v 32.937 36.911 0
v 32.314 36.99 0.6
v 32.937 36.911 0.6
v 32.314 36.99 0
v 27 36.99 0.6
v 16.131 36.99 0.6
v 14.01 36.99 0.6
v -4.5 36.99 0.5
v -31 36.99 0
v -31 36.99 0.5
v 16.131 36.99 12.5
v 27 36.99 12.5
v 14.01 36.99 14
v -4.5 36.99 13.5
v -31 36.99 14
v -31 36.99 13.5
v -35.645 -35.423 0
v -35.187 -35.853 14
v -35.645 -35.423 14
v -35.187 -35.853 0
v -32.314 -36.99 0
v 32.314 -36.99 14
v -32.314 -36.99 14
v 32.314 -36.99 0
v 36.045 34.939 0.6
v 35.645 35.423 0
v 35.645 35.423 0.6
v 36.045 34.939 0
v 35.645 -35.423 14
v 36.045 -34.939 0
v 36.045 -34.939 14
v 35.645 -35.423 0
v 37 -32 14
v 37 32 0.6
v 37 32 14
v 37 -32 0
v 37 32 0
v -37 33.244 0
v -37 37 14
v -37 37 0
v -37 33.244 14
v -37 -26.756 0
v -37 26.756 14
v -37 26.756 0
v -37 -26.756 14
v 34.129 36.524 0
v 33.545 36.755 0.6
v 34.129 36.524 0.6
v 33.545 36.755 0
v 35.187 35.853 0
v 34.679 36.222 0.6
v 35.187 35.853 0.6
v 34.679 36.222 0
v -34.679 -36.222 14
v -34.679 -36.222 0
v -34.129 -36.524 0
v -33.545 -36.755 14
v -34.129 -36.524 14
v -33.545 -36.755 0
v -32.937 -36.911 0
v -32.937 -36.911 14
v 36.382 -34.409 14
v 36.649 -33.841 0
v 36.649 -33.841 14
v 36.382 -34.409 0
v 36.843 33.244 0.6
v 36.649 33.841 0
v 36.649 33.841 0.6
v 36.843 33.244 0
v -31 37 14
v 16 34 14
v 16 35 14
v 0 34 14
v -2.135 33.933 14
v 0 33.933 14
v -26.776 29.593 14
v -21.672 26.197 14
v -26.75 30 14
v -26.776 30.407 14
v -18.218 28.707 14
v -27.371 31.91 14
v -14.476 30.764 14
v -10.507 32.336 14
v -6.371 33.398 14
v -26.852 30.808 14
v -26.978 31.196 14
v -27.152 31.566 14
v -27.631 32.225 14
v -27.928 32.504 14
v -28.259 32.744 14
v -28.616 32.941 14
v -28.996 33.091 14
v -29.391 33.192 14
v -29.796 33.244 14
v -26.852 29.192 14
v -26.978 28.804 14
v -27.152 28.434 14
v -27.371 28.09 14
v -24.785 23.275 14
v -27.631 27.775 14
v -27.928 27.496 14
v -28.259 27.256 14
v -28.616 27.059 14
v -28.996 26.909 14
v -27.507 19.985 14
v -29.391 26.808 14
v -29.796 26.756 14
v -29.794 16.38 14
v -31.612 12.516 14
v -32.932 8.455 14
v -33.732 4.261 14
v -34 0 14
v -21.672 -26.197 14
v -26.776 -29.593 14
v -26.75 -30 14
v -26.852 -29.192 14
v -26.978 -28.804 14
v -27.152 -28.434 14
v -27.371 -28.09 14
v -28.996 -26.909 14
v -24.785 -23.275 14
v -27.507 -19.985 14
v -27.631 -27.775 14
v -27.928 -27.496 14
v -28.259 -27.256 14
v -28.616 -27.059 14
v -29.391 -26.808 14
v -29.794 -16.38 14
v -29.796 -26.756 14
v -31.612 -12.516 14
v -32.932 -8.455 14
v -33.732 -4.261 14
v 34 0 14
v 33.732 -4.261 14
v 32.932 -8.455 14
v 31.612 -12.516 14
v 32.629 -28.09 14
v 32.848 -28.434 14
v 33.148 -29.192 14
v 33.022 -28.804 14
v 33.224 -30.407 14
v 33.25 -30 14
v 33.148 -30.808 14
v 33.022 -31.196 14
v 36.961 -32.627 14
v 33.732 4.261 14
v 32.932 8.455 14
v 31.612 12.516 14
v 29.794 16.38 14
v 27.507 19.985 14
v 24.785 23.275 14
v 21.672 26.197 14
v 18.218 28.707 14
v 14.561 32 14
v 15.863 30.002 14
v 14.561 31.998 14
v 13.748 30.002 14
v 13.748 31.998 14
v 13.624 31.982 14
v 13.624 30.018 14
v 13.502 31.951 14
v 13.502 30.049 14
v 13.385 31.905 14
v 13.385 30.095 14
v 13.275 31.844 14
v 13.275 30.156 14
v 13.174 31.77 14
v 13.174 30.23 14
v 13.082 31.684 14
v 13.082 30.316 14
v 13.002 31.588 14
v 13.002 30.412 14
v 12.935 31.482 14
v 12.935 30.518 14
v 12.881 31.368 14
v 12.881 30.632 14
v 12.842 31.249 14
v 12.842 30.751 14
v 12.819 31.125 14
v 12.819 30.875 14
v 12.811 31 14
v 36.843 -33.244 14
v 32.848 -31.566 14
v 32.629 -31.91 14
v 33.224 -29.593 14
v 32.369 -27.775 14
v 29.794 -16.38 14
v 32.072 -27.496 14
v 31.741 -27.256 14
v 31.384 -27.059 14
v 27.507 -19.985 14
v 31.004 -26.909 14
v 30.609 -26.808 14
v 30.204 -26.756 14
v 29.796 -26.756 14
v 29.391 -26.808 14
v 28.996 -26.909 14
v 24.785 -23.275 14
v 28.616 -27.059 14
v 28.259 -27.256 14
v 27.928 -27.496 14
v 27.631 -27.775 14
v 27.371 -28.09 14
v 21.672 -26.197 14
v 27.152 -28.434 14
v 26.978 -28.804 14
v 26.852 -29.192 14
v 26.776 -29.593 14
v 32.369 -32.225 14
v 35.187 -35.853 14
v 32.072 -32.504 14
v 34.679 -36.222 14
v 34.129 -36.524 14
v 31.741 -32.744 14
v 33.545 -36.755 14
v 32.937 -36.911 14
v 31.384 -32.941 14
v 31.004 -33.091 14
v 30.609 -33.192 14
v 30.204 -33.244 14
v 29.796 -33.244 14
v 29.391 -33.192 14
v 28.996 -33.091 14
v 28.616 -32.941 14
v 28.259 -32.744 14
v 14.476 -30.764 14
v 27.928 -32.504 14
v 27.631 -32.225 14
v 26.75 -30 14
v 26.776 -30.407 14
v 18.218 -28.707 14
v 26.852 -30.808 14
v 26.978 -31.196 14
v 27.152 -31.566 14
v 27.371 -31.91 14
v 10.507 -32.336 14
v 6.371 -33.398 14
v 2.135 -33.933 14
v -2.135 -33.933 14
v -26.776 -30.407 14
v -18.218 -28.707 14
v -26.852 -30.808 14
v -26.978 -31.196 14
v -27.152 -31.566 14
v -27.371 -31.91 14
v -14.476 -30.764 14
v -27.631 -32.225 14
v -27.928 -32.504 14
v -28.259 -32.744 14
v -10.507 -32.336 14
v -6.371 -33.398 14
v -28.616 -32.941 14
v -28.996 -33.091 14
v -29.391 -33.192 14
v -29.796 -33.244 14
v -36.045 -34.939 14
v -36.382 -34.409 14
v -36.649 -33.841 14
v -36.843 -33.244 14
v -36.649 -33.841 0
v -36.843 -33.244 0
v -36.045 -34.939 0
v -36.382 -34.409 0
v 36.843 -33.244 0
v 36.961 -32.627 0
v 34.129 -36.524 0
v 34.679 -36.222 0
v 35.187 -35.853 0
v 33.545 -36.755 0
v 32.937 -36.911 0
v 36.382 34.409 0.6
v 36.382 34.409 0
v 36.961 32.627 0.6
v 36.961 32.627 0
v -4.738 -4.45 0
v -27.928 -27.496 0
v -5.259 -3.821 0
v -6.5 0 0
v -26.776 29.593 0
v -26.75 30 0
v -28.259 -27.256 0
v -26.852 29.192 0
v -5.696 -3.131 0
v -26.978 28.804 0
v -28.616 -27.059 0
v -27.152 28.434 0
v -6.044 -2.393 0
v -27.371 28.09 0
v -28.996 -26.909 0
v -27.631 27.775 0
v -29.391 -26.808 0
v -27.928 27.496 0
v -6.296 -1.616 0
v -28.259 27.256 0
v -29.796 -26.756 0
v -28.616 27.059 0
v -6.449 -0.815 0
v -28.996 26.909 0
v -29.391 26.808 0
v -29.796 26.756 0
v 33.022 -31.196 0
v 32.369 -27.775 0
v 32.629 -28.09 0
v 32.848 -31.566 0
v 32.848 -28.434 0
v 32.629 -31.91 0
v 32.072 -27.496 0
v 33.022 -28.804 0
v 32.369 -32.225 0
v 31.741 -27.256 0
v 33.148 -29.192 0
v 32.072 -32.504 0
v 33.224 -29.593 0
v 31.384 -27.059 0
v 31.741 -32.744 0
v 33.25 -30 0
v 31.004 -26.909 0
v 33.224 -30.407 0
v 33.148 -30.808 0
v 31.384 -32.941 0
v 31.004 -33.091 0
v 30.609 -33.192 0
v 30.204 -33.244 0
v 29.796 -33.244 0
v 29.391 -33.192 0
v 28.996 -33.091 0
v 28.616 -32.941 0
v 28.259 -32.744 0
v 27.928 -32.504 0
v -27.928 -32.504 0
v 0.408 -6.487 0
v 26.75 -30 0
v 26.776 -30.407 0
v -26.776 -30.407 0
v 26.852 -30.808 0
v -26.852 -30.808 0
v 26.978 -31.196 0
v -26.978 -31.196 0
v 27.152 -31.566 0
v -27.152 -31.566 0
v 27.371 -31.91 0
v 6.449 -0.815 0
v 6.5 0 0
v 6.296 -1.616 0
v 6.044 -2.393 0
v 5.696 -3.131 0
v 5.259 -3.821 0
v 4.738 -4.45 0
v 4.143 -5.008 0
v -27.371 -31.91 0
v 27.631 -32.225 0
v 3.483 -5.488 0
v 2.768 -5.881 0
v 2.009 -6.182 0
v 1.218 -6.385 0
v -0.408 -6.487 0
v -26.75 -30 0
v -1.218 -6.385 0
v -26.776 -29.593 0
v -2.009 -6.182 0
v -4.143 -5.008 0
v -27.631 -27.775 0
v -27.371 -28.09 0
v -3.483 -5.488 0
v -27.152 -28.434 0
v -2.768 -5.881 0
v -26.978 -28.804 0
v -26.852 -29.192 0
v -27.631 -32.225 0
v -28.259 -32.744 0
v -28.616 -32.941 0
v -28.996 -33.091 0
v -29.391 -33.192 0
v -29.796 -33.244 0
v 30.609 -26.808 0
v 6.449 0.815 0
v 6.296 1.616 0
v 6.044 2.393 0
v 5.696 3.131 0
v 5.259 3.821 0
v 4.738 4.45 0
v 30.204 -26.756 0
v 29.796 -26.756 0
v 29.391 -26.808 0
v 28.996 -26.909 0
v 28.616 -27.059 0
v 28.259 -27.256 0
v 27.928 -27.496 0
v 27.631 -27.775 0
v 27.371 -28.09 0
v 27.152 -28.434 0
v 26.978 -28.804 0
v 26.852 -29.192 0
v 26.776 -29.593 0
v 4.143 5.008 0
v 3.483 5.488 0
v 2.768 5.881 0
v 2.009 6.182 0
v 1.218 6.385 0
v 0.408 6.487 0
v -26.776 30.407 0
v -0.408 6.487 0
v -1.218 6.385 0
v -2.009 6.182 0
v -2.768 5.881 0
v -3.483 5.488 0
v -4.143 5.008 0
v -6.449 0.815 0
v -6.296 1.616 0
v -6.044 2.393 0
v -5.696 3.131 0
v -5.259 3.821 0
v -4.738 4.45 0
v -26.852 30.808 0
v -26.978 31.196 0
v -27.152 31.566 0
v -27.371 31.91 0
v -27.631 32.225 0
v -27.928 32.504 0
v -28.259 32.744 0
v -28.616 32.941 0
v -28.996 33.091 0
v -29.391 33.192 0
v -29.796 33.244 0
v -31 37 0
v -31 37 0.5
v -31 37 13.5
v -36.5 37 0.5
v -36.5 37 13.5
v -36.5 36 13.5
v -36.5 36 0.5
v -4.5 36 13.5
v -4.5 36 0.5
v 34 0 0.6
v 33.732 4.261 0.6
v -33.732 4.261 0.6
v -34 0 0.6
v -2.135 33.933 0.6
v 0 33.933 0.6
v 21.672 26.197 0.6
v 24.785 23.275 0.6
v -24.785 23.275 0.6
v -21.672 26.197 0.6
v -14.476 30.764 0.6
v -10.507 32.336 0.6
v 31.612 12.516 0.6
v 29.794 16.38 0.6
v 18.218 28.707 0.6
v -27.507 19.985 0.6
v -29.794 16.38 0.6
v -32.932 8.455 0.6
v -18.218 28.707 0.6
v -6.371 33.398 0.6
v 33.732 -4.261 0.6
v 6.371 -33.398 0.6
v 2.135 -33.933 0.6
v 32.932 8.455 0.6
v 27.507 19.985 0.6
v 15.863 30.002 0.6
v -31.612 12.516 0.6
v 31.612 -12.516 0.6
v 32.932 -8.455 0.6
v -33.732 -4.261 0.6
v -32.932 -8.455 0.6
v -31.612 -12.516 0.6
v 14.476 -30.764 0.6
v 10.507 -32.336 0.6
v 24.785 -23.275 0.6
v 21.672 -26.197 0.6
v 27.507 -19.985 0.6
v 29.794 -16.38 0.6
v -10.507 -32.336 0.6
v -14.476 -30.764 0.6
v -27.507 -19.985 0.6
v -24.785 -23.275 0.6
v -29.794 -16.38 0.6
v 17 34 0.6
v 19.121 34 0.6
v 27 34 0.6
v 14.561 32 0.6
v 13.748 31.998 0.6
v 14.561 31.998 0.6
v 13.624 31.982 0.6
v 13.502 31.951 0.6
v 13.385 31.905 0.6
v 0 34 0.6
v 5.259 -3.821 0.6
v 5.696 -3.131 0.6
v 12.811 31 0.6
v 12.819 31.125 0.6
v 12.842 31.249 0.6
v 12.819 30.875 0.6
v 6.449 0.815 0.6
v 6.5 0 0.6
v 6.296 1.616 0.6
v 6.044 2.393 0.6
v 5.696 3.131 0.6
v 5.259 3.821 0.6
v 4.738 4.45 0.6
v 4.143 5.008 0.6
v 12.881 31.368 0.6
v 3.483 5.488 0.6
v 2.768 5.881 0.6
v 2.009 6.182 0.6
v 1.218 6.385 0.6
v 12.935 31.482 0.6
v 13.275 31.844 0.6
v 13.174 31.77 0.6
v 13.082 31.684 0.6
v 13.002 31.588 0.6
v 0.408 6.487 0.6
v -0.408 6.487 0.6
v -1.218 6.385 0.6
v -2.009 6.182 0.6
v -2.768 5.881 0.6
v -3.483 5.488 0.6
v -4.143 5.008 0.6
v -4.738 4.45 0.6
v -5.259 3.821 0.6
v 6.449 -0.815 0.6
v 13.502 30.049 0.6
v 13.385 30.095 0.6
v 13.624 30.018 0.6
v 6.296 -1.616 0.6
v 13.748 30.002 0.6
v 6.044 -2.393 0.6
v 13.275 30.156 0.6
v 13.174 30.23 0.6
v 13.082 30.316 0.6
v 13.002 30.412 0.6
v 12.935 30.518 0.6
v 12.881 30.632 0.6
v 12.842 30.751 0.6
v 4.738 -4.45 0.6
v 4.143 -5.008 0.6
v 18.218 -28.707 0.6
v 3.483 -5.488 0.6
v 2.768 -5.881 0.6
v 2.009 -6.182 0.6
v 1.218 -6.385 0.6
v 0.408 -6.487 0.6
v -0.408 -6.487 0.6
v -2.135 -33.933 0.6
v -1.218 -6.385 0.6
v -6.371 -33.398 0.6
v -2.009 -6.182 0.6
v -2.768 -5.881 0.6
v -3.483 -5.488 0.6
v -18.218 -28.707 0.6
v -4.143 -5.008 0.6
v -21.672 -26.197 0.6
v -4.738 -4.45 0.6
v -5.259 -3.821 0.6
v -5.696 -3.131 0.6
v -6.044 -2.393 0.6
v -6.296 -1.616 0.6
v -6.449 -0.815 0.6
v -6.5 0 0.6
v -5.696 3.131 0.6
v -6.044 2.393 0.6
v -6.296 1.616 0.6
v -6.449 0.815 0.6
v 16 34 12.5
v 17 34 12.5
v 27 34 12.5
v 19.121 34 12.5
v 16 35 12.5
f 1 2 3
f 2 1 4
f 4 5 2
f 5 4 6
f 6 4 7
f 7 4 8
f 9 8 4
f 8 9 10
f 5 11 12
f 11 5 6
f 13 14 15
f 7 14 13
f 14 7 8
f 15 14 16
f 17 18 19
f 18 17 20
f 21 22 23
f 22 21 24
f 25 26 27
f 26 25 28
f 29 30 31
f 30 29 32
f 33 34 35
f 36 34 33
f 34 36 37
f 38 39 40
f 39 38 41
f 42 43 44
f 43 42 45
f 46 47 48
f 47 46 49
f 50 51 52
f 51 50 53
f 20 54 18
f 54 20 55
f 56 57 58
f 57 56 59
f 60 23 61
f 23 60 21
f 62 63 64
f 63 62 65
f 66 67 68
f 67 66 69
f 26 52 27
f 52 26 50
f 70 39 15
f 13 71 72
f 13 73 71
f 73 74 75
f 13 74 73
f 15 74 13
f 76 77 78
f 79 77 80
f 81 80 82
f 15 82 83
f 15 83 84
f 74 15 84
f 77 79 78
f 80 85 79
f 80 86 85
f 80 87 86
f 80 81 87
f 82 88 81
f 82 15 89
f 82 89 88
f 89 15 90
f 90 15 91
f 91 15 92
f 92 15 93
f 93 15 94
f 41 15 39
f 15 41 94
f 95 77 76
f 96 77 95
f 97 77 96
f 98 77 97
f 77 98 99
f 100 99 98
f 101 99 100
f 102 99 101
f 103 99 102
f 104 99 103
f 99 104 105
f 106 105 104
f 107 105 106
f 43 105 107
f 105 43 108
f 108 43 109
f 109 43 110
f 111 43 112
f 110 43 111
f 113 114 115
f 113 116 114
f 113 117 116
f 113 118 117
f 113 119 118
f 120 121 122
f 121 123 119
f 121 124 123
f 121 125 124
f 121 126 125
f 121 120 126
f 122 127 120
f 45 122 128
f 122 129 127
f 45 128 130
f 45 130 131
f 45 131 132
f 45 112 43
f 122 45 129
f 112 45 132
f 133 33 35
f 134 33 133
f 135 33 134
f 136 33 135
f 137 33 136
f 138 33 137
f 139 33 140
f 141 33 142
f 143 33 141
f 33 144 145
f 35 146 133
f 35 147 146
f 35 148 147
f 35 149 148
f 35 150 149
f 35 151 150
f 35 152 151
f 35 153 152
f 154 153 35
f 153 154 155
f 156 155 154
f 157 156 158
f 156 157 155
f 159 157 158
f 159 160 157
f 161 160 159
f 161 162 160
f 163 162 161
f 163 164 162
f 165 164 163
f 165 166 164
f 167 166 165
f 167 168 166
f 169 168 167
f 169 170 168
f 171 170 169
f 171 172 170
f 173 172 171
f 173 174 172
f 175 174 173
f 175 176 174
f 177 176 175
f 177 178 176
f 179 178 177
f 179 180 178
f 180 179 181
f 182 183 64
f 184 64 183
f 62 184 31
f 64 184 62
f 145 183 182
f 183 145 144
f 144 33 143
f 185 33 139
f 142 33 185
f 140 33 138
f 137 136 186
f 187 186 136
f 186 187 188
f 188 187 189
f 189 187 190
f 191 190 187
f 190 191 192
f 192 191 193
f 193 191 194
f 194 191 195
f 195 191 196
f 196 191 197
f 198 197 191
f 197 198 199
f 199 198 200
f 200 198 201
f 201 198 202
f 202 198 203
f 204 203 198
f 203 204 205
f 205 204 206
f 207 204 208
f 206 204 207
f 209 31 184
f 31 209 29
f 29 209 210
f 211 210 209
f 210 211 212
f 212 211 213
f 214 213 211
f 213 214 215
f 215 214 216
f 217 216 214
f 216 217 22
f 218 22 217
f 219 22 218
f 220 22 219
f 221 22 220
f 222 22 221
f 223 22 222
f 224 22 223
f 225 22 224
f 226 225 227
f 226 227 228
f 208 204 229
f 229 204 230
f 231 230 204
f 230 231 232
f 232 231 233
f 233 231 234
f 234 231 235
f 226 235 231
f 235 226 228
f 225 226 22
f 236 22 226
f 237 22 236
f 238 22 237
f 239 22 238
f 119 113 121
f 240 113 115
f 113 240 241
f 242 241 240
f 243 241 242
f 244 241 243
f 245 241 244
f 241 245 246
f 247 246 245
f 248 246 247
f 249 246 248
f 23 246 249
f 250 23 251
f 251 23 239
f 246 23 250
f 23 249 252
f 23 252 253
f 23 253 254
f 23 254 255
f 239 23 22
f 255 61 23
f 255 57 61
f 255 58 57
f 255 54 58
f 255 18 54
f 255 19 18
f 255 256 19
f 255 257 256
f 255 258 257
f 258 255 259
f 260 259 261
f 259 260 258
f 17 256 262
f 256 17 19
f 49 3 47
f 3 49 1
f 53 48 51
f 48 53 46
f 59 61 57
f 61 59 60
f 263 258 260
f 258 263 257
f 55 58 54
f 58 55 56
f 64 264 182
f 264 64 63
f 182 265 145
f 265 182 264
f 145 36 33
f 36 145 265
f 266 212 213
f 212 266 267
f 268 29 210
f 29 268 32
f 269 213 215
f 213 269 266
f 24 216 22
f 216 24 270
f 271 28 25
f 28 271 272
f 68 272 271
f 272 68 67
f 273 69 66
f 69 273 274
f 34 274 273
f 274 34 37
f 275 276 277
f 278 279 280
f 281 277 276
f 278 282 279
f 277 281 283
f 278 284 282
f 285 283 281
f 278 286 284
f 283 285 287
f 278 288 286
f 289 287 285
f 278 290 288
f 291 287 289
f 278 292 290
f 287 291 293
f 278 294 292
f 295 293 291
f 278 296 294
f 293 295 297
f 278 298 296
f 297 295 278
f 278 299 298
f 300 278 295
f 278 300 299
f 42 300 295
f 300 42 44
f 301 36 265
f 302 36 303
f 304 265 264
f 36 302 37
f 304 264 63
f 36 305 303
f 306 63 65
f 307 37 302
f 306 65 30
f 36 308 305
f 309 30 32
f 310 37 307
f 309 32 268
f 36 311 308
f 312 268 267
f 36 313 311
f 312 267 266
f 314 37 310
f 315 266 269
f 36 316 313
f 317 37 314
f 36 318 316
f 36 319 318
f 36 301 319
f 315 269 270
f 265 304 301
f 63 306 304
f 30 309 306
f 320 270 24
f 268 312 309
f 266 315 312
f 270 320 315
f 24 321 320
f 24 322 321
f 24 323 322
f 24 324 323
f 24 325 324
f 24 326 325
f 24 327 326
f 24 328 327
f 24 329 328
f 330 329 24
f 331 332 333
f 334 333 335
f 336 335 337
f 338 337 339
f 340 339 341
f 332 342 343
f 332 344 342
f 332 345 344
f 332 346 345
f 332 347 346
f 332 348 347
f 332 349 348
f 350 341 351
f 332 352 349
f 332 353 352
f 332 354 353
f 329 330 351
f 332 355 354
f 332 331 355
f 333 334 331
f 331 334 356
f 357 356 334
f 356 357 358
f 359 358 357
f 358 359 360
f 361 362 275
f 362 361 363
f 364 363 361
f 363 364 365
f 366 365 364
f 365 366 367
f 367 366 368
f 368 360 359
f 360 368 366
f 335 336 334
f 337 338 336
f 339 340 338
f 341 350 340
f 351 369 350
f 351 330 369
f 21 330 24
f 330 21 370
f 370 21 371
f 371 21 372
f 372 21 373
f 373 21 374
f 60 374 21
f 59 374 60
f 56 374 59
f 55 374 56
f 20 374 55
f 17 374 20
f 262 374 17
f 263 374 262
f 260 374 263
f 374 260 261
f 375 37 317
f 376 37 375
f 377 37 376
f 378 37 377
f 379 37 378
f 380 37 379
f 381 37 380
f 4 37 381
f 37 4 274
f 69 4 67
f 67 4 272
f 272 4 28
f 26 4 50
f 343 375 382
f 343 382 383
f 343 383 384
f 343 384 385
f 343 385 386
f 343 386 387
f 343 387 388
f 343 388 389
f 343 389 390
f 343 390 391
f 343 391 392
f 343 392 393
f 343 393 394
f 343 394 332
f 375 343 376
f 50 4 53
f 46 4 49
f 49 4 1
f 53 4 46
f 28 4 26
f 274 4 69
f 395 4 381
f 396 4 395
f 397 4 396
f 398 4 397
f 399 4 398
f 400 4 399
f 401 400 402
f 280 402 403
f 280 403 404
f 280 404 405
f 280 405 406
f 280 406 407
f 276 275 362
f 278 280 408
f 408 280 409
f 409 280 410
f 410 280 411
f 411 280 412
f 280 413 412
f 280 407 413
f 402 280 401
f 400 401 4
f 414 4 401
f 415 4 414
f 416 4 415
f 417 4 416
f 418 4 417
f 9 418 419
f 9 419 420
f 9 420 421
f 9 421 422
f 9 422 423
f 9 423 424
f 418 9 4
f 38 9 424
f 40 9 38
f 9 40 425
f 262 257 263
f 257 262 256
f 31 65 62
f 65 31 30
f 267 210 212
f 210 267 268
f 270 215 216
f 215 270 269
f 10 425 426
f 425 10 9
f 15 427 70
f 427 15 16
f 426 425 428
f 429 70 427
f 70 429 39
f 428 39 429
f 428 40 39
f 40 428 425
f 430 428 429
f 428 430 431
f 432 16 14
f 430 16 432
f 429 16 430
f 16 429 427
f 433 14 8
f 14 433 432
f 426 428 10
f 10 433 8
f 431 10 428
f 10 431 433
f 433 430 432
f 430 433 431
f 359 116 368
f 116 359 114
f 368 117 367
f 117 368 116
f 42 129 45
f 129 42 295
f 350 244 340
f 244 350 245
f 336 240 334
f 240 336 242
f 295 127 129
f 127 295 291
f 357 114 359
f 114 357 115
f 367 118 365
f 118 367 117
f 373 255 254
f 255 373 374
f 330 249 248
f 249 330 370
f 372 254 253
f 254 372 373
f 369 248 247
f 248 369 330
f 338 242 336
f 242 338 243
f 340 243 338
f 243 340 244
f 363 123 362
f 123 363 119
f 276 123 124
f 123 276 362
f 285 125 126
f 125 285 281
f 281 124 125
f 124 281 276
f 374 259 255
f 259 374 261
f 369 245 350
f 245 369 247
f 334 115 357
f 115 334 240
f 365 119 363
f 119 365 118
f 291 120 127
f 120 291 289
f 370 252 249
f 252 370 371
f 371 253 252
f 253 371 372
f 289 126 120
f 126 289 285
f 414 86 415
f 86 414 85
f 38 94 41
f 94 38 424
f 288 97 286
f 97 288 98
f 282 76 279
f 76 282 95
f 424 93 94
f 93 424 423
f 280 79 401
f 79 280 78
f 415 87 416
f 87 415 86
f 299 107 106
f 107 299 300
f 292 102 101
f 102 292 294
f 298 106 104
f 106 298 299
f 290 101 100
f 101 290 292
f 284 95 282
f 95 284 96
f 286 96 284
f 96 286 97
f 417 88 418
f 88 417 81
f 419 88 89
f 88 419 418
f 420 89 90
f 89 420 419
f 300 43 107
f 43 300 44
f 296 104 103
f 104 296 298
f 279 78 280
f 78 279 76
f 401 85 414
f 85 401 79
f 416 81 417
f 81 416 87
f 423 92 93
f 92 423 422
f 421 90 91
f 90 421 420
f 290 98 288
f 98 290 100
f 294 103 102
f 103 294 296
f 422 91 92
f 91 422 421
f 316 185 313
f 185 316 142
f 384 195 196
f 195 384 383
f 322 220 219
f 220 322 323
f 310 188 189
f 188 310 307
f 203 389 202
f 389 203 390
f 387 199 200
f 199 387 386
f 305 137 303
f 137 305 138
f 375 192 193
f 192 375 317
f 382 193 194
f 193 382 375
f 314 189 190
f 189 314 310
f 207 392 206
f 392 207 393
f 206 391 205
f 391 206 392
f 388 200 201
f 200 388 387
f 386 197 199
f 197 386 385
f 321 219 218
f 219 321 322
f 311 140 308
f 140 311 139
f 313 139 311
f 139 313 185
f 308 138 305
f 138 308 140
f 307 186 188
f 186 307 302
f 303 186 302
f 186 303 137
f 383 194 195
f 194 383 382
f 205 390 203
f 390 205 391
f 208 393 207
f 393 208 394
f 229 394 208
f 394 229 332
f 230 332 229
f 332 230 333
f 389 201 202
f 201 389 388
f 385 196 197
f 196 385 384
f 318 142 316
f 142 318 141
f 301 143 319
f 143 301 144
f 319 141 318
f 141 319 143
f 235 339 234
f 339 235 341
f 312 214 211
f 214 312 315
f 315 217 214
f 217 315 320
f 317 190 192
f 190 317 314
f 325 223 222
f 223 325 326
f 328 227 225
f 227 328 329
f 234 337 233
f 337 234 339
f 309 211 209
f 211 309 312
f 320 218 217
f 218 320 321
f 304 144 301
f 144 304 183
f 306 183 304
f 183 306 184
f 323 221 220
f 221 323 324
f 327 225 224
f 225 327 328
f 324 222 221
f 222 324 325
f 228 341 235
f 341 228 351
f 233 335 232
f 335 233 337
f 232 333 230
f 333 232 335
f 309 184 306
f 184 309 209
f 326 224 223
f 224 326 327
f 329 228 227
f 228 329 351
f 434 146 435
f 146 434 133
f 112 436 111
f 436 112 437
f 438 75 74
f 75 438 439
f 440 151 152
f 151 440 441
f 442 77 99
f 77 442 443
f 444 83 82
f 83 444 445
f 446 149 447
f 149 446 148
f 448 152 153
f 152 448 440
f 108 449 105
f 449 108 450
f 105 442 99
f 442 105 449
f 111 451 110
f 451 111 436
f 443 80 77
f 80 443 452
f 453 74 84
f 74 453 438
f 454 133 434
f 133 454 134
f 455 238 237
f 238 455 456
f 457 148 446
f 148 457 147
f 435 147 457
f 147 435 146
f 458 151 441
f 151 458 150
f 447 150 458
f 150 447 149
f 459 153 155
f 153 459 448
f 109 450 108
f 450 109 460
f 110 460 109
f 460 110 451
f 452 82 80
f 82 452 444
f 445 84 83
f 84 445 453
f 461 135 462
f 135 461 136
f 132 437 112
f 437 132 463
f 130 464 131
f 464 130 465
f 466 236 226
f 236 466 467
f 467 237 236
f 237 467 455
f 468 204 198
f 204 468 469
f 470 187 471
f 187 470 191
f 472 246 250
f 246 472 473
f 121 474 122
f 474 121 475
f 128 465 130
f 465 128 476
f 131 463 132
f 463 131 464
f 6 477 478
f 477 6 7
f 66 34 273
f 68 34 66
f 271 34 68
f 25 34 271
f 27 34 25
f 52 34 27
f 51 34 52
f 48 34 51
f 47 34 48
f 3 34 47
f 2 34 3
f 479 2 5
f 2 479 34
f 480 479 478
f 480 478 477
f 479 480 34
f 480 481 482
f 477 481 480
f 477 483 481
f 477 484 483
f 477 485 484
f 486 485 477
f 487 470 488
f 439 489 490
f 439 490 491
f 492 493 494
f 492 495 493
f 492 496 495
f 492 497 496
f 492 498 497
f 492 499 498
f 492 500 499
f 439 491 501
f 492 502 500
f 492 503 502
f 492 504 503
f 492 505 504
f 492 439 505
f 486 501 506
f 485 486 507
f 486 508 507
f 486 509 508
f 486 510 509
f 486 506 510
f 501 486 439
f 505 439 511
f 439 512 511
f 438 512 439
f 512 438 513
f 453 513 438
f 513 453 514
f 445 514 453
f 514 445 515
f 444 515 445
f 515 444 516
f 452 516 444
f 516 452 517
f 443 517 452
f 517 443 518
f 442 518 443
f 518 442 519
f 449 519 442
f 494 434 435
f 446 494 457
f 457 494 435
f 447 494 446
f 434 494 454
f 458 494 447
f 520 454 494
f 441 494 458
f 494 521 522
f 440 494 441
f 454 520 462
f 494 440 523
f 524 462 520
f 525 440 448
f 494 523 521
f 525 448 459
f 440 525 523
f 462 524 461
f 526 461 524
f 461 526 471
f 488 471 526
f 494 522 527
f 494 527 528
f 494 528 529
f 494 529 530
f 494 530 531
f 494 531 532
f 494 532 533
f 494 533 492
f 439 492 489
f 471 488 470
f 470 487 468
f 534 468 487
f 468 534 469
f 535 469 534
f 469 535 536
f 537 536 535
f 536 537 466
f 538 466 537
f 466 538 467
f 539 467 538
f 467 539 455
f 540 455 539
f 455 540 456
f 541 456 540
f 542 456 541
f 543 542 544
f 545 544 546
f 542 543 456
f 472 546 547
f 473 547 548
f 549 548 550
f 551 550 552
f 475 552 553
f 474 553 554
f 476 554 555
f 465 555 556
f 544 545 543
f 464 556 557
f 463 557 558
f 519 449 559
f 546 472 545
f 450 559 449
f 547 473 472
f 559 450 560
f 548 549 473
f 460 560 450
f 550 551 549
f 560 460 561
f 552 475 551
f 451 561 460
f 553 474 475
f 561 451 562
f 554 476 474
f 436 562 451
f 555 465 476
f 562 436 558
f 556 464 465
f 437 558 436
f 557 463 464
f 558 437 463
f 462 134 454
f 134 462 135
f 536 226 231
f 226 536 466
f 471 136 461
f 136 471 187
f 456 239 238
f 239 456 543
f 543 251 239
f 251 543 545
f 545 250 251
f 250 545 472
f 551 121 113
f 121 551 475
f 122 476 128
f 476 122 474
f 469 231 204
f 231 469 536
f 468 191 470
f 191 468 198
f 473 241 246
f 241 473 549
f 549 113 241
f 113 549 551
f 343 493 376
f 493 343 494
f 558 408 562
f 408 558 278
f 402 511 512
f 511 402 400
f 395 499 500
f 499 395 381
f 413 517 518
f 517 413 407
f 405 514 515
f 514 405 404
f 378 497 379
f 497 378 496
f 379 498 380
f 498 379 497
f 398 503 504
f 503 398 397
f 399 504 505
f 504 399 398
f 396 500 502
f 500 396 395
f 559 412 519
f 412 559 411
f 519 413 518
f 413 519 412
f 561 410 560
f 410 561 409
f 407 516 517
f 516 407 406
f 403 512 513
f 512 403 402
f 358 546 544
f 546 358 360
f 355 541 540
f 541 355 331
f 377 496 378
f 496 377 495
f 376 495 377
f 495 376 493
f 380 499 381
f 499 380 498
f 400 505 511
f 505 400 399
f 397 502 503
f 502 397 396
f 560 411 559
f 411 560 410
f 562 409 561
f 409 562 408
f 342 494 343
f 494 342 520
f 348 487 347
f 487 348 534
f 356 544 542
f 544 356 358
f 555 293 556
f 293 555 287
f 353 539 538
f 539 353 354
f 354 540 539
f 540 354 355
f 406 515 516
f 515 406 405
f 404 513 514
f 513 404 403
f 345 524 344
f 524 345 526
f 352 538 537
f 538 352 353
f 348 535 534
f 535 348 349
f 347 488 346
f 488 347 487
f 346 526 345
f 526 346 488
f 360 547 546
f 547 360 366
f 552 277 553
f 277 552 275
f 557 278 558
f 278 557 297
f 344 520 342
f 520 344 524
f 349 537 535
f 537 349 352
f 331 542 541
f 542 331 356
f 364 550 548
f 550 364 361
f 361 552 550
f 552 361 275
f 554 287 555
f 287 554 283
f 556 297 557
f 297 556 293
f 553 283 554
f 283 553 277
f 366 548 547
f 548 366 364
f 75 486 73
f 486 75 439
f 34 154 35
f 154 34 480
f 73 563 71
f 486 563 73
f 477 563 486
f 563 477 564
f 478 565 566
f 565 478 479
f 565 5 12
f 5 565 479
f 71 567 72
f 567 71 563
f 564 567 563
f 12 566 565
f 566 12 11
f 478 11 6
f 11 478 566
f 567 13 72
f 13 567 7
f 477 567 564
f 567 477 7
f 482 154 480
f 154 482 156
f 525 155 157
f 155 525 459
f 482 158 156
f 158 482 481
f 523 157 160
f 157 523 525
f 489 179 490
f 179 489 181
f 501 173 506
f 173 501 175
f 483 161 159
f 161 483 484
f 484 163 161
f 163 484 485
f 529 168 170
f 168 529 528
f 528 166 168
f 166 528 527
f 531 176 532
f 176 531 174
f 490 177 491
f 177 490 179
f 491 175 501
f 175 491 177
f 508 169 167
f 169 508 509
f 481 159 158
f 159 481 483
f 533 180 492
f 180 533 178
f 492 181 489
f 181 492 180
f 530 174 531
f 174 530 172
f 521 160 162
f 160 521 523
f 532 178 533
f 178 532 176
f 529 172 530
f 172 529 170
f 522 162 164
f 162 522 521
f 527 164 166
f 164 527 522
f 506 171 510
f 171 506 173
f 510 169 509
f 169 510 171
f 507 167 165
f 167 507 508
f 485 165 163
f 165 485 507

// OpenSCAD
$fn = 50;


union() {
	difference() {
		union() {
			translate(v = [0, 0, 0]) {
				rotate(a = [0, 0, 0]) {
					hull() {
						translate(v = [-32.0000000000, 32.0000000000, 0]) {
							rotate(a = [0, 0, 0]) {
								translate(v = [0, 0, 0]) {
									rotate(a = [0, 0, 0]) {
										cylinder(h = 14, r = 5);
									}
								}
							}
						}
						translate(v = [32.0000000000, 32.0000000000, 0]) {
							rotate(a = [0, 0, 0]) {
								translate(v = [0, 0, 0]) {
									rotate(a = [0, 0, 0]) {
										cylinder(h = 14, r = 5);
									}
								}
							}
						}
						translate(v = [-32.0000000000, -32.0000000000, 0]) {
							rotate(a = [0, 0, 0]) {
								translate(v = [0, 0, 0]) {
									rotate(a = [0, 0, 0]) {
										cylinder(h = 14, r = 5);
									}
								}
							}
						}
						translate(v = [32.0000000000, -32.0000000000, 0]) {
							rotate(a = [0, 0, 0]) {
								translate(v = [0, 0, 0]) {
									rotate(a = [0, 0, 0]) {
										cylinder(h = 14, r = 5);
									}
								}
							}
						}
					}
				}
			}
			translate(v = [-37.0000000000, 31.0000000000, 0]) {
				rotate(a = [0, 0, 0]) {
					cube(size = [6, 6, 14]);
				}
			}
		}
		union() {
			#translate(v = [-36.5000000000, 36.0000000000, 0.5000000000]) {
				rotate(a = [0, 0, 0]) {
					cube(size = [32, 1, 13.0000000000]);
				}
			}
			translate(v = [-37.5000000000, -30.0000000000, -125]) {
				rotate(a = [0, 0, 0]) {
					hull() {
						translate(v = [7.5000000000, 0, 0]) {
							rotate(a = [0, 0, 0]) {
								translate(v = [0, 0, 0]) {
									rotate(a = [0, 0, 0]) {
										cylinder(h = 250, r = 3.2500000000);
									}
								}
							}
						}
						translate(v = [-7.5000000000, 0, 0]) {
							rotate(a = [0, 0, 0]) {
								translate(v = [0, 0, 0]) {
									rotate(a = [0, 0, 0]) {
										cylinder(h = 250, r = 3.2500000000);
									}
								}
							}
						}
					}
				}
			}
			translate(v = [-37.5000000000, 30.0000000000, -125]) {
				rotate(a = [0, 0, 0]) {
					hull() {
						translate(v = [7.5000000000, 0, 0]) {
							rotate(a = [0, 0, 0]) {
								translate(v = [0, 0, 0]) {
									rotate(a = [0, 0, 0]) {
										cylinder(h = 250, r = 3.2500000000);
									}
								}
							}
						}
						translate(v = [-7.5000000000, 0, 0]) {
							rotate(a = [0, 0, 0]) {
								translate(v = [0, 0, 0]) {
									rotate(a = [0, 0, 0]) {
										cylinder(h = 250, r = 3.2500000000);
									}
								}
							}
						}
					}
				}
			}
			translate(v = [30.0000000000, -30.0000000000, -125.0000000000]) {
				rotate(a = [0, 0, 0]) {
					cylinder(h = 250, r = 3.2500000000);
				}
			}
			translate(v = [0, 0, 0.6000000000]) {
				rotate(a = [0, 0, 0]) {
					cylinder(h = 16.4000000000, r = 34.0000000000);
				}
			}
			translate(v = [0, 0, -7.0000000000]) {
				rotate(a = [0, 0, 0]) {
					cylinder(h = 14, r = 6.5000000000);
				}
			}
			translate(v = [0.0000000000, 32.0000000000, 0.6000000000]) {
				rotate(a = [0, 0, 0]) {
					cube(size = [37.0000000000, 2, 16.4000000000]);
				}
			}
			translate(v = [27.0000000000, 32.0000000000, 0.6000000000]) {
				rotate(a = [0, 0, 0]) {
					cube(size = [10, 5, 16.4000000000]);
				}
			}
			translate(v = [16.0000000000, 32.0000000000, 12.5000000000]) {
				rotate(a = [0, 0, 0]) {
					cube(size = [21, 5, 1.5000000000]);
				}
			}
			translate(v = [13.2500000000, 37.7500000000, 0.6000000000]) {
				rotate(a = [0, 0, -45]) {
					cube(size = [7.5000000000, 1.5000000000, 16.4000000000]);
				}
			}
			translate(v = [7.0610000000, 30.0000000000, 0.6000000000]) {
				rotate(a = [0, 0, 0]) {
					cube(size = [7.5000000000, 2, 13.4000000000]);
				}
			}
		}
	}
	union() {
		translate(v = [16.3110000000, 31.0000000000, 0]) {
			rotate(a = [0, 0, 0]) {
				hull() {
					translate(v = [2.5000000000, 0, 0]) {
						rotate(a = [0, 0, 0]) {
							#translate(v = [0, 0, 0]) {
								rotate(a = [0, 0, 0]) {
									cylinder(h = 14, r = 1.0000000000);
								}
							}
						}
					}
					translate(v = [-2.5000000000, 0, 0]) {
						rotate(a = [0, 0, 0]) {
							#translate(v = [0, 0, 0]) {
								rotate(a = [0, 0, 0]) {
									cylinder(h = 14, r = 1.0000000000);
								}
							}
						}
					}
				}
			}
		}
	}
}
